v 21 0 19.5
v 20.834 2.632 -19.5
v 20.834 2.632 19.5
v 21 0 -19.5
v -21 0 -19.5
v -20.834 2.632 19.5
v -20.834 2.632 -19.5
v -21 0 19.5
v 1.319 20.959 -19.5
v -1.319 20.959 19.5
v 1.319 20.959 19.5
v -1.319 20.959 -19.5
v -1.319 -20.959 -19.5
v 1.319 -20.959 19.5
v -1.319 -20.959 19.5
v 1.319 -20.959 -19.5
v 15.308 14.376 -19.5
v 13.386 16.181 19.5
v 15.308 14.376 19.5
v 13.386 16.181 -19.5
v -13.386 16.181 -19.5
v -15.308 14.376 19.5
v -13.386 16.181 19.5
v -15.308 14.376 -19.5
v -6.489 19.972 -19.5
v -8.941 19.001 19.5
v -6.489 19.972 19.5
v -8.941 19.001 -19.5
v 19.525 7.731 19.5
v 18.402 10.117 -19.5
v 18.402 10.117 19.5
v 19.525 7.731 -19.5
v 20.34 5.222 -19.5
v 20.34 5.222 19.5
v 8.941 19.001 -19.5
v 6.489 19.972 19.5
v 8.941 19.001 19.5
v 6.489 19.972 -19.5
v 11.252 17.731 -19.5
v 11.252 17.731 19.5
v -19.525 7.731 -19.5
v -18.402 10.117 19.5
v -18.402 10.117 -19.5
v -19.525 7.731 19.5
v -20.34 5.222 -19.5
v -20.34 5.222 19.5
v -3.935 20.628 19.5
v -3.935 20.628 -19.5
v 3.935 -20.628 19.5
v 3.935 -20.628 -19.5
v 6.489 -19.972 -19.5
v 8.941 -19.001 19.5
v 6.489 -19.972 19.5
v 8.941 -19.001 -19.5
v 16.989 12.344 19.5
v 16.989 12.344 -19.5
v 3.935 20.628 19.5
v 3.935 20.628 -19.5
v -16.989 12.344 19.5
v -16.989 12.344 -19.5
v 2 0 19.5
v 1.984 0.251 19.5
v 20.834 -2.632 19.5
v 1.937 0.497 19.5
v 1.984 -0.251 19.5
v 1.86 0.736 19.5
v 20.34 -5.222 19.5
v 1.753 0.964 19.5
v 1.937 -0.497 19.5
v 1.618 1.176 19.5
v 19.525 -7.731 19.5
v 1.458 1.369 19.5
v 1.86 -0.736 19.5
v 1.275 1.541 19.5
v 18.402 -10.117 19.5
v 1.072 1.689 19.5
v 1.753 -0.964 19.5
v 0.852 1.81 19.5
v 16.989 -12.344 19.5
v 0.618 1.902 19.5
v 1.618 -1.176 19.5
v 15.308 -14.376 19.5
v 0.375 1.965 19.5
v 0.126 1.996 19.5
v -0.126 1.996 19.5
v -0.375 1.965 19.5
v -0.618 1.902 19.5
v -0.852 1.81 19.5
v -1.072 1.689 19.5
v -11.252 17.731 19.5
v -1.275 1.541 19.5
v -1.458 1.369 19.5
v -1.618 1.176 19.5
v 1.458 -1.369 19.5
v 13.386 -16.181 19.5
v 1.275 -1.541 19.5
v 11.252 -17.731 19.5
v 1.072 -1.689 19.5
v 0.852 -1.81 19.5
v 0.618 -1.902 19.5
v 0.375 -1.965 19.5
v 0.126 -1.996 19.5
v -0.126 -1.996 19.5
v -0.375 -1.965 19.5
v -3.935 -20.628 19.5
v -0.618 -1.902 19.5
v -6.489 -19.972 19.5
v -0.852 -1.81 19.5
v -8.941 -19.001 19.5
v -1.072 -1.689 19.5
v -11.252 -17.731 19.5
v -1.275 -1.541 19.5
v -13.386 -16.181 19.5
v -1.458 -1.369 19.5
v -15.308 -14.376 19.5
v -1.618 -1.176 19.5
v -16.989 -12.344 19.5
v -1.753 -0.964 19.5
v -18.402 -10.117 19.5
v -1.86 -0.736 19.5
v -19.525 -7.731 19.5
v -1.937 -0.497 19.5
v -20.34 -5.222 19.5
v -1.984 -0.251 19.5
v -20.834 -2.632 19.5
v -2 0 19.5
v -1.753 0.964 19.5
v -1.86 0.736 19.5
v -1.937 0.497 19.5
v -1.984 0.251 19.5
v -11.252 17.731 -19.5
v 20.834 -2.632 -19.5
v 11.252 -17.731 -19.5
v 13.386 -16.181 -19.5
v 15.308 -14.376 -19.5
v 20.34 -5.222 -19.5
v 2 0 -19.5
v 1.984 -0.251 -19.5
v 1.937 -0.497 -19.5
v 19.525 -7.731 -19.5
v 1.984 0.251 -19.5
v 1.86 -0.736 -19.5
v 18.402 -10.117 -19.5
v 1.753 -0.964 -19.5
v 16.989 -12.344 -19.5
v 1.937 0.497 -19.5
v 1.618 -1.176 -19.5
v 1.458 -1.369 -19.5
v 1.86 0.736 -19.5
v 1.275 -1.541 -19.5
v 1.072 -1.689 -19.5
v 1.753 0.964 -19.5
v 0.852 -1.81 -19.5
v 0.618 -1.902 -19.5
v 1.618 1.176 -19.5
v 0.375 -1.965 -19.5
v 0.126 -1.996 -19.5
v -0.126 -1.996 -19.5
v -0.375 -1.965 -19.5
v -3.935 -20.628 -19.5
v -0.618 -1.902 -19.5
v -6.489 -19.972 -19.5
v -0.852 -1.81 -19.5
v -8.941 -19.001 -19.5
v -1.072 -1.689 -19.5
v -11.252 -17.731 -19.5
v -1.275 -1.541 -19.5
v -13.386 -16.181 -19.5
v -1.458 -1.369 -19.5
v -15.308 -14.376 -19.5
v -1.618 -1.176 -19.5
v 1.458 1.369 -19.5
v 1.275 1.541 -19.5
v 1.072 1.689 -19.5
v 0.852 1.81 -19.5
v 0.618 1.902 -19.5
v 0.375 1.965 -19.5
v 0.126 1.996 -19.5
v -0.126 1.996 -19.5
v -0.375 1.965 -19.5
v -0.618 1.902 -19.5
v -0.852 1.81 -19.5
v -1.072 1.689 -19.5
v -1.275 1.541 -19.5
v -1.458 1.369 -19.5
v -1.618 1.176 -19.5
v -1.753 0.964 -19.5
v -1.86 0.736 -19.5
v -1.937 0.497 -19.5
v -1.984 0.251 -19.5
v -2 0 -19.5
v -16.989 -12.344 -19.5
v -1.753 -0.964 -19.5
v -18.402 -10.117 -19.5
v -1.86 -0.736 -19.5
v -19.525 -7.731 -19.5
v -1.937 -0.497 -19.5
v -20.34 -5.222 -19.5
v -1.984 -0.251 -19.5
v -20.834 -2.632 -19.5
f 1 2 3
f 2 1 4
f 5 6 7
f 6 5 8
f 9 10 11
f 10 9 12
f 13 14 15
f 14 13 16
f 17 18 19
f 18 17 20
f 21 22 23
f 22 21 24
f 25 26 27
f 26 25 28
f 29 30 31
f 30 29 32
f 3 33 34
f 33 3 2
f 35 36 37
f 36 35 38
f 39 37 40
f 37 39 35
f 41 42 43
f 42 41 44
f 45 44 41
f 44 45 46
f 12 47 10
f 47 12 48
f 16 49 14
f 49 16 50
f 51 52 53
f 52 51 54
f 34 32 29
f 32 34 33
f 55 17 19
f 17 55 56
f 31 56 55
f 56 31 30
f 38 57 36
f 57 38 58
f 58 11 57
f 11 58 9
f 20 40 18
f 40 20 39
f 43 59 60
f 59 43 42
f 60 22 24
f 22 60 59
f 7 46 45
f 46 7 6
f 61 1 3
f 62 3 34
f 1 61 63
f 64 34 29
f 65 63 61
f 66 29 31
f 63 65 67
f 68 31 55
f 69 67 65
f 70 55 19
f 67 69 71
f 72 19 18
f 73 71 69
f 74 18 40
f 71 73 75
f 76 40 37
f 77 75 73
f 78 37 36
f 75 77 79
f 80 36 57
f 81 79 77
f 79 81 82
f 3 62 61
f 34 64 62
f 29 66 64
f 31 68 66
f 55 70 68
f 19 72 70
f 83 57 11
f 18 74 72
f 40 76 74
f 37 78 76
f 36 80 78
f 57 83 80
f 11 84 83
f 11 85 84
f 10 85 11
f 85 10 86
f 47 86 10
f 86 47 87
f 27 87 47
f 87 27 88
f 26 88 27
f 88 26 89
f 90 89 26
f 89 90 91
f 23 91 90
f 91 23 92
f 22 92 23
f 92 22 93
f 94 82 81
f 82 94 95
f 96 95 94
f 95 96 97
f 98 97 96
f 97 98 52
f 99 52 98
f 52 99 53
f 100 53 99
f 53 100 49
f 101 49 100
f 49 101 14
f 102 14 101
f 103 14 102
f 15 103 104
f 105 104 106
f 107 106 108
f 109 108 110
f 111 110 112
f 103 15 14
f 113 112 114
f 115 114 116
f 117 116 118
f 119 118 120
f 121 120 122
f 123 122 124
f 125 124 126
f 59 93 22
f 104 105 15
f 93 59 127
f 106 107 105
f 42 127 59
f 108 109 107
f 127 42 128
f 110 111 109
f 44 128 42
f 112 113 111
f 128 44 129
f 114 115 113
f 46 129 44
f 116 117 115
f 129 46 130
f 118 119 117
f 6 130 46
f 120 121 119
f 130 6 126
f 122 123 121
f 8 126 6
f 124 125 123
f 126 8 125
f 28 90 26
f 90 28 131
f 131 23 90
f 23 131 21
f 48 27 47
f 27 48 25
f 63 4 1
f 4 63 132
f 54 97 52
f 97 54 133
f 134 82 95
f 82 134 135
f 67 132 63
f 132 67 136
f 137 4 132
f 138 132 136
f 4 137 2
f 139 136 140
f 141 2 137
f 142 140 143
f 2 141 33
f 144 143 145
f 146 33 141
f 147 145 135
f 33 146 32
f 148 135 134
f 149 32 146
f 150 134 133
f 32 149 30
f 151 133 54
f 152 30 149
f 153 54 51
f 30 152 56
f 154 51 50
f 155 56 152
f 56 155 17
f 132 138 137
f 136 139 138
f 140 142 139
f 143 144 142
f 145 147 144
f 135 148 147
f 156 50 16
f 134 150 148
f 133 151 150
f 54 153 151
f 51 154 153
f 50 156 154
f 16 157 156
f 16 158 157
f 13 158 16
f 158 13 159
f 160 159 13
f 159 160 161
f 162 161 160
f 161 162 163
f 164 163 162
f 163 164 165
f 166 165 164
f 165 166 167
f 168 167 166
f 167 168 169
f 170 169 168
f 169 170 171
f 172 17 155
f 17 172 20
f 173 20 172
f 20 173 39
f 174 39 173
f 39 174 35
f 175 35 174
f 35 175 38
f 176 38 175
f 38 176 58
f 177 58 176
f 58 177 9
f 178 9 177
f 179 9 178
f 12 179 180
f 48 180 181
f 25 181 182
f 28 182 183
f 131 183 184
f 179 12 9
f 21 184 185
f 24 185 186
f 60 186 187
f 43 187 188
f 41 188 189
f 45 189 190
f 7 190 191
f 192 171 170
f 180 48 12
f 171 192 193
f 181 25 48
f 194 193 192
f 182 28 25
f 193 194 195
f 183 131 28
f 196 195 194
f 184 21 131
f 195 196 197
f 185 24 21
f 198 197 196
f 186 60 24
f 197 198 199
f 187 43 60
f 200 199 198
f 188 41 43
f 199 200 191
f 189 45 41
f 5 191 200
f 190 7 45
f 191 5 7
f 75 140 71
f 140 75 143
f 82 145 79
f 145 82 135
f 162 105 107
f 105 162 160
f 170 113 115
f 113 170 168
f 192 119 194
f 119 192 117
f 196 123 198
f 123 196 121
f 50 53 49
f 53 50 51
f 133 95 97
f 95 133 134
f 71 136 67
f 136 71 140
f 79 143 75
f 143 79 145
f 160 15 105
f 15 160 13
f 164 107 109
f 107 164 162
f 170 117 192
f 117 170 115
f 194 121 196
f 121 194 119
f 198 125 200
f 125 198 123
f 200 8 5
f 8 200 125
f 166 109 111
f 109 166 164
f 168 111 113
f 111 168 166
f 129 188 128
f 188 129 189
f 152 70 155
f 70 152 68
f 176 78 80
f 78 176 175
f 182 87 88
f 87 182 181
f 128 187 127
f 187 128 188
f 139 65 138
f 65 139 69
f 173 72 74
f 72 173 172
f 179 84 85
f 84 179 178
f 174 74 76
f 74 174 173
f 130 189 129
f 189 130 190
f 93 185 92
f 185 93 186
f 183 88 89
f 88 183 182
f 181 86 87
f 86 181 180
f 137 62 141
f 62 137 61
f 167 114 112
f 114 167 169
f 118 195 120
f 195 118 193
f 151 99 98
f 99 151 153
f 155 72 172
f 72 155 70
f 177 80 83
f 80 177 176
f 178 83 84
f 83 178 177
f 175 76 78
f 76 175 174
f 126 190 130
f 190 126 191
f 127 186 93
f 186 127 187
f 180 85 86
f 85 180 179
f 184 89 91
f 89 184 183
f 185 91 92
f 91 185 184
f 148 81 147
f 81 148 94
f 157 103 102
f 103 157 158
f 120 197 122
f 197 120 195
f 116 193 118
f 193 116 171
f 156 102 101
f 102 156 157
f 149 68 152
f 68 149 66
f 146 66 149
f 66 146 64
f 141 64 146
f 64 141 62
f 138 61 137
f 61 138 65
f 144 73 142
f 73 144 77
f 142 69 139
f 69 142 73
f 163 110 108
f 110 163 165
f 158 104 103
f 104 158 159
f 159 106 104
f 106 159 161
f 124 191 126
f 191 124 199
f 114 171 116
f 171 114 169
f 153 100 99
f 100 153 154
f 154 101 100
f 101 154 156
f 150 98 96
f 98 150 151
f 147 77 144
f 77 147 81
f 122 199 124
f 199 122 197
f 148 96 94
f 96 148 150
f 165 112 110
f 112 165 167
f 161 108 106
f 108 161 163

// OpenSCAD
$fn = 50;


difference() {
	union() {
		translate(v = [0, 0, -19.5000000000]) {
			cylinder(h = 39, r = 21.0000000000);
		}
	}
	union() {
		translate(v = [0, 0, -100.0000000000]) {
			cylinder(h = 200, r = 2);
		}
	}
}
